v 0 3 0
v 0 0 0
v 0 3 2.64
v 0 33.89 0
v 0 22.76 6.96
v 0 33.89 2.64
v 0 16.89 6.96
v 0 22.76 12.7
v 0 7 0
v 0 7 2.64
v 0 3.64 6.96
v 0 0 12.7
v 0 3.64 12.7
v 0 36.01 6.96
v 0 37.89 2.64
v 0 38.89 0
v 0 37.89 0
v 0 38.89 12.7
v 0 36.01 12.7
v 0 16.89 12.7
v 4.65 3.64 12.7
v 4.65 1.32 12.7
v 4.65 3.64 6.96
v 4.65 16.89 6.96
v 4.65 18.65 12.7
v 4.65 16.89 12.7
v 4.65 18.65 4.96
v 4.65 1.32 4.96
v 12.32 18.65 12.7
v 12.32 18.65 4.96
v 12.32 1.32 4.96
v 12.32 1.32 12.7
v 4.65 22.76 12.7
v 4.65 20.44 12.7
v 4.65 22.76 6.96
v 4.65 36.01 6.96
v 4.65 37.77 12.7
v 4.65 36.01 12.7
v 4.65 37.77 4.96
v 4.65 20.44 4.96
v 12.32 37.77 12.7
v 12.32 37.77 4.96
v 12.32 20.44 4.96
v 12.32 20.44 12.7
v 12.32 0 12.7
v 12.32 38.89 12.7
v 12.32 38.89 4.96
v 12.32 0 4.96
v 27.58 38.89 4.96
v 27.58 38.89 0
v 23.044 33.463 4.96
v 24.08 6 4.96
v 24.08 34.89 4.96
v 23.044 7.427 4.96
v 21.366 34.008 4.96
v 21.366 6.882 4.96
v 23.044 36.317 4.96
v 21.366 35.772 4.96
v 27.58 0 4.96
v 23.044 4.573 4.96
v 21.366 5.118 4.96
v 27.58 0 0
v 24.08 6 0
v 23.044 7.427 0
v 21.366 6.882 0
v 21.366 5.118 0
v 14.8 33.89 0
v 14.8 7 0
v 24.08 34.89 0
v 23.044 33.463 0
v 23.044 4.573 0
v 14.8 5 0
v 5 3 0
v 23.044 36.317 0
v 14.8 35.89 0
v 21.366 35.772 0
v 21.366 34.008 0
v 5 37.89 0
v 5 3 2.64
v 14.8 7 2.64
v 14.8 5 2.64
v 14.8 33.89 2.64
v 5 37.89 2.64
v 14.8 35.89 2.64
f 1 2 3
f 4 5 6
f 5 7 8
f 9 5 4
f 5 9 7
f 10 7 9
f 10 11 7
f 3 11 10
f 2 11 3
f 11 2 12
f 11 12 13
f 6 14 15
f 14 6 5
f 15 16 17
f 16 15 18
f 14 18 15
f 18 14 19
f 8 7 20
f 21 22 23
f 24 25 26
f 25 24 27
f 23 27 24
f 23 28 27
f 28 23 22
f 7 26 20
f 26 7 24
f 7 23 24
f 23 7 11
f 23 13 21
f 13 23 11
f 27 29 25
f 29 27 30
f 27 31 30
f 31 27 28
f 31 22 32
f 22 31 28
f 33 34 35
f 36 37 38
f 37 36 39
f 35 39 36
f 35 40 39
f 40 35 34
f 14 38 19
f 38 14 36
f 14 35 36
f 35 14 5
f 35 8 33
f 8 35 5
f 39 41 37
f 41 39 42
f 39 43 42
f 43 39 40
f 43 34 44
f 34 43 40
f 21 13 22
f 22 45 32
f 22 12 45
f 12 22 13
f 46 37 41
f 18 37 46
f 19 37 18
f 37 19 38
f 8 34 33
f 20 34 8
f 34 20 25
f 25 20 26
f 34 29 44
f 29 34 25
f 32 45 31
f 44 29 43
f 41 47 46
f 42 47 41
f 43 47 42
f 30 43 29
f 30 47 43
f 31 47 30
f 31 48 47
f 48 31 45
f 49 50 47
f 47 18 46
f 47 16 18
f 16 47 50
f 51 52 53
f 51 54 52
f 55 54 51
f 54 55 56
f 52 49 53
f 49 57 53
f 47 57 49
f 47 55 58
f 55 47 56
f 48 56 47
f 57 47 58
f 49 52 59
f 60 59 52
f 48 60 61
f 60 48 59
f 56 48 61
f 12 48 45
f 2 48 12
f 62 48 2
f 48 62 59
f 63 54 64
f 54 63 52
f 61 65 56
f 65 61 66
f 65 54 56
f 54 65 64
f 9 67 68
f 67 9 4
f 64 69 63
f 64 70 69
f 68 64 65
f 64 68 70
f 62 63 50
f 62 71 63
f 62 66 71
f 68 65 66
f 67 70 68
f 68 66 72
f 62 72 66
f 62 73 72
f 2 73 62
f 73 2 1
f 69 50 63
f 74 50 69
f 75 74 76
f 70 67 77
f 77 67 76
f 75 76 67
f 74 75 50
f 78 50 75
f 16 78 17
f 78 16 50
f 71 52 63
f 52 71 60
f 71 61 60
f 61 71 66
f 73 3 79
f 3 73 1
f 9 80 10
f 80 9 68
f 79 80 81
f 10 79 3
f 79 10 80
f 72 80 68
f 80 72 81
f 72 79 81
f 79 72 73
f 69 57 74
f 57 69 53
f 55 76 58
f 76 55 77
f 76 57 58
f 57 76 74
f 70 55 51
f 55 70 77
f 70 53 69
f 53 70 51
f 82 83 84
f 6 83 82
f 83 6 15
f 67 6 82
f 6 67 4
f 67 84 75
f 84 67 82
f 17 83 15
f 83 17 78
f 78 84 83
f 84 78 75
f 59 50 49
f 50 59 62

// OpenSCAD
platform();
usb_cable_block();


module usb_cable_block() {
    difference() {
        translate([0, 0, 4.96])
        cube([4.64+7.68, 28.89+5+5, 7.74]);
        
        translate([0, 2.64/2, 4.96])
        usb_plugs();
    }

    module usb_plugs() {
        usb_plug();
        translate([0, 16.12+3])
        usb_plug();

        module usb_plug() {
            translate([0, 2.32, 2])
            cube([4.65, 13.25, 5.75]);
            translate([4.65, 0])
            cube([7.68, 17.33, 10]);
        }
    }
}

module platform() {
    difference() {
        cube([22.58+5, 28.89+5+5, 4.96]);

        translate([0, 5]) {
            translate([22.58, 1])
            cylinder(h=5, d=3);
            hull() {
                cube([14.80, 2, 2.64]);
                translate([0, -2])
                cube([5, 4, 2.64]);
            }
        }

        translate([0, 5+28.89]) {
            translate([22.58, 1])
            cylinder(h=5, d=3);
            hull() {
                cube([14.80, 2, 2.64]);
                cube([5, 4, 2.64]);
            }
        }
    }
}
